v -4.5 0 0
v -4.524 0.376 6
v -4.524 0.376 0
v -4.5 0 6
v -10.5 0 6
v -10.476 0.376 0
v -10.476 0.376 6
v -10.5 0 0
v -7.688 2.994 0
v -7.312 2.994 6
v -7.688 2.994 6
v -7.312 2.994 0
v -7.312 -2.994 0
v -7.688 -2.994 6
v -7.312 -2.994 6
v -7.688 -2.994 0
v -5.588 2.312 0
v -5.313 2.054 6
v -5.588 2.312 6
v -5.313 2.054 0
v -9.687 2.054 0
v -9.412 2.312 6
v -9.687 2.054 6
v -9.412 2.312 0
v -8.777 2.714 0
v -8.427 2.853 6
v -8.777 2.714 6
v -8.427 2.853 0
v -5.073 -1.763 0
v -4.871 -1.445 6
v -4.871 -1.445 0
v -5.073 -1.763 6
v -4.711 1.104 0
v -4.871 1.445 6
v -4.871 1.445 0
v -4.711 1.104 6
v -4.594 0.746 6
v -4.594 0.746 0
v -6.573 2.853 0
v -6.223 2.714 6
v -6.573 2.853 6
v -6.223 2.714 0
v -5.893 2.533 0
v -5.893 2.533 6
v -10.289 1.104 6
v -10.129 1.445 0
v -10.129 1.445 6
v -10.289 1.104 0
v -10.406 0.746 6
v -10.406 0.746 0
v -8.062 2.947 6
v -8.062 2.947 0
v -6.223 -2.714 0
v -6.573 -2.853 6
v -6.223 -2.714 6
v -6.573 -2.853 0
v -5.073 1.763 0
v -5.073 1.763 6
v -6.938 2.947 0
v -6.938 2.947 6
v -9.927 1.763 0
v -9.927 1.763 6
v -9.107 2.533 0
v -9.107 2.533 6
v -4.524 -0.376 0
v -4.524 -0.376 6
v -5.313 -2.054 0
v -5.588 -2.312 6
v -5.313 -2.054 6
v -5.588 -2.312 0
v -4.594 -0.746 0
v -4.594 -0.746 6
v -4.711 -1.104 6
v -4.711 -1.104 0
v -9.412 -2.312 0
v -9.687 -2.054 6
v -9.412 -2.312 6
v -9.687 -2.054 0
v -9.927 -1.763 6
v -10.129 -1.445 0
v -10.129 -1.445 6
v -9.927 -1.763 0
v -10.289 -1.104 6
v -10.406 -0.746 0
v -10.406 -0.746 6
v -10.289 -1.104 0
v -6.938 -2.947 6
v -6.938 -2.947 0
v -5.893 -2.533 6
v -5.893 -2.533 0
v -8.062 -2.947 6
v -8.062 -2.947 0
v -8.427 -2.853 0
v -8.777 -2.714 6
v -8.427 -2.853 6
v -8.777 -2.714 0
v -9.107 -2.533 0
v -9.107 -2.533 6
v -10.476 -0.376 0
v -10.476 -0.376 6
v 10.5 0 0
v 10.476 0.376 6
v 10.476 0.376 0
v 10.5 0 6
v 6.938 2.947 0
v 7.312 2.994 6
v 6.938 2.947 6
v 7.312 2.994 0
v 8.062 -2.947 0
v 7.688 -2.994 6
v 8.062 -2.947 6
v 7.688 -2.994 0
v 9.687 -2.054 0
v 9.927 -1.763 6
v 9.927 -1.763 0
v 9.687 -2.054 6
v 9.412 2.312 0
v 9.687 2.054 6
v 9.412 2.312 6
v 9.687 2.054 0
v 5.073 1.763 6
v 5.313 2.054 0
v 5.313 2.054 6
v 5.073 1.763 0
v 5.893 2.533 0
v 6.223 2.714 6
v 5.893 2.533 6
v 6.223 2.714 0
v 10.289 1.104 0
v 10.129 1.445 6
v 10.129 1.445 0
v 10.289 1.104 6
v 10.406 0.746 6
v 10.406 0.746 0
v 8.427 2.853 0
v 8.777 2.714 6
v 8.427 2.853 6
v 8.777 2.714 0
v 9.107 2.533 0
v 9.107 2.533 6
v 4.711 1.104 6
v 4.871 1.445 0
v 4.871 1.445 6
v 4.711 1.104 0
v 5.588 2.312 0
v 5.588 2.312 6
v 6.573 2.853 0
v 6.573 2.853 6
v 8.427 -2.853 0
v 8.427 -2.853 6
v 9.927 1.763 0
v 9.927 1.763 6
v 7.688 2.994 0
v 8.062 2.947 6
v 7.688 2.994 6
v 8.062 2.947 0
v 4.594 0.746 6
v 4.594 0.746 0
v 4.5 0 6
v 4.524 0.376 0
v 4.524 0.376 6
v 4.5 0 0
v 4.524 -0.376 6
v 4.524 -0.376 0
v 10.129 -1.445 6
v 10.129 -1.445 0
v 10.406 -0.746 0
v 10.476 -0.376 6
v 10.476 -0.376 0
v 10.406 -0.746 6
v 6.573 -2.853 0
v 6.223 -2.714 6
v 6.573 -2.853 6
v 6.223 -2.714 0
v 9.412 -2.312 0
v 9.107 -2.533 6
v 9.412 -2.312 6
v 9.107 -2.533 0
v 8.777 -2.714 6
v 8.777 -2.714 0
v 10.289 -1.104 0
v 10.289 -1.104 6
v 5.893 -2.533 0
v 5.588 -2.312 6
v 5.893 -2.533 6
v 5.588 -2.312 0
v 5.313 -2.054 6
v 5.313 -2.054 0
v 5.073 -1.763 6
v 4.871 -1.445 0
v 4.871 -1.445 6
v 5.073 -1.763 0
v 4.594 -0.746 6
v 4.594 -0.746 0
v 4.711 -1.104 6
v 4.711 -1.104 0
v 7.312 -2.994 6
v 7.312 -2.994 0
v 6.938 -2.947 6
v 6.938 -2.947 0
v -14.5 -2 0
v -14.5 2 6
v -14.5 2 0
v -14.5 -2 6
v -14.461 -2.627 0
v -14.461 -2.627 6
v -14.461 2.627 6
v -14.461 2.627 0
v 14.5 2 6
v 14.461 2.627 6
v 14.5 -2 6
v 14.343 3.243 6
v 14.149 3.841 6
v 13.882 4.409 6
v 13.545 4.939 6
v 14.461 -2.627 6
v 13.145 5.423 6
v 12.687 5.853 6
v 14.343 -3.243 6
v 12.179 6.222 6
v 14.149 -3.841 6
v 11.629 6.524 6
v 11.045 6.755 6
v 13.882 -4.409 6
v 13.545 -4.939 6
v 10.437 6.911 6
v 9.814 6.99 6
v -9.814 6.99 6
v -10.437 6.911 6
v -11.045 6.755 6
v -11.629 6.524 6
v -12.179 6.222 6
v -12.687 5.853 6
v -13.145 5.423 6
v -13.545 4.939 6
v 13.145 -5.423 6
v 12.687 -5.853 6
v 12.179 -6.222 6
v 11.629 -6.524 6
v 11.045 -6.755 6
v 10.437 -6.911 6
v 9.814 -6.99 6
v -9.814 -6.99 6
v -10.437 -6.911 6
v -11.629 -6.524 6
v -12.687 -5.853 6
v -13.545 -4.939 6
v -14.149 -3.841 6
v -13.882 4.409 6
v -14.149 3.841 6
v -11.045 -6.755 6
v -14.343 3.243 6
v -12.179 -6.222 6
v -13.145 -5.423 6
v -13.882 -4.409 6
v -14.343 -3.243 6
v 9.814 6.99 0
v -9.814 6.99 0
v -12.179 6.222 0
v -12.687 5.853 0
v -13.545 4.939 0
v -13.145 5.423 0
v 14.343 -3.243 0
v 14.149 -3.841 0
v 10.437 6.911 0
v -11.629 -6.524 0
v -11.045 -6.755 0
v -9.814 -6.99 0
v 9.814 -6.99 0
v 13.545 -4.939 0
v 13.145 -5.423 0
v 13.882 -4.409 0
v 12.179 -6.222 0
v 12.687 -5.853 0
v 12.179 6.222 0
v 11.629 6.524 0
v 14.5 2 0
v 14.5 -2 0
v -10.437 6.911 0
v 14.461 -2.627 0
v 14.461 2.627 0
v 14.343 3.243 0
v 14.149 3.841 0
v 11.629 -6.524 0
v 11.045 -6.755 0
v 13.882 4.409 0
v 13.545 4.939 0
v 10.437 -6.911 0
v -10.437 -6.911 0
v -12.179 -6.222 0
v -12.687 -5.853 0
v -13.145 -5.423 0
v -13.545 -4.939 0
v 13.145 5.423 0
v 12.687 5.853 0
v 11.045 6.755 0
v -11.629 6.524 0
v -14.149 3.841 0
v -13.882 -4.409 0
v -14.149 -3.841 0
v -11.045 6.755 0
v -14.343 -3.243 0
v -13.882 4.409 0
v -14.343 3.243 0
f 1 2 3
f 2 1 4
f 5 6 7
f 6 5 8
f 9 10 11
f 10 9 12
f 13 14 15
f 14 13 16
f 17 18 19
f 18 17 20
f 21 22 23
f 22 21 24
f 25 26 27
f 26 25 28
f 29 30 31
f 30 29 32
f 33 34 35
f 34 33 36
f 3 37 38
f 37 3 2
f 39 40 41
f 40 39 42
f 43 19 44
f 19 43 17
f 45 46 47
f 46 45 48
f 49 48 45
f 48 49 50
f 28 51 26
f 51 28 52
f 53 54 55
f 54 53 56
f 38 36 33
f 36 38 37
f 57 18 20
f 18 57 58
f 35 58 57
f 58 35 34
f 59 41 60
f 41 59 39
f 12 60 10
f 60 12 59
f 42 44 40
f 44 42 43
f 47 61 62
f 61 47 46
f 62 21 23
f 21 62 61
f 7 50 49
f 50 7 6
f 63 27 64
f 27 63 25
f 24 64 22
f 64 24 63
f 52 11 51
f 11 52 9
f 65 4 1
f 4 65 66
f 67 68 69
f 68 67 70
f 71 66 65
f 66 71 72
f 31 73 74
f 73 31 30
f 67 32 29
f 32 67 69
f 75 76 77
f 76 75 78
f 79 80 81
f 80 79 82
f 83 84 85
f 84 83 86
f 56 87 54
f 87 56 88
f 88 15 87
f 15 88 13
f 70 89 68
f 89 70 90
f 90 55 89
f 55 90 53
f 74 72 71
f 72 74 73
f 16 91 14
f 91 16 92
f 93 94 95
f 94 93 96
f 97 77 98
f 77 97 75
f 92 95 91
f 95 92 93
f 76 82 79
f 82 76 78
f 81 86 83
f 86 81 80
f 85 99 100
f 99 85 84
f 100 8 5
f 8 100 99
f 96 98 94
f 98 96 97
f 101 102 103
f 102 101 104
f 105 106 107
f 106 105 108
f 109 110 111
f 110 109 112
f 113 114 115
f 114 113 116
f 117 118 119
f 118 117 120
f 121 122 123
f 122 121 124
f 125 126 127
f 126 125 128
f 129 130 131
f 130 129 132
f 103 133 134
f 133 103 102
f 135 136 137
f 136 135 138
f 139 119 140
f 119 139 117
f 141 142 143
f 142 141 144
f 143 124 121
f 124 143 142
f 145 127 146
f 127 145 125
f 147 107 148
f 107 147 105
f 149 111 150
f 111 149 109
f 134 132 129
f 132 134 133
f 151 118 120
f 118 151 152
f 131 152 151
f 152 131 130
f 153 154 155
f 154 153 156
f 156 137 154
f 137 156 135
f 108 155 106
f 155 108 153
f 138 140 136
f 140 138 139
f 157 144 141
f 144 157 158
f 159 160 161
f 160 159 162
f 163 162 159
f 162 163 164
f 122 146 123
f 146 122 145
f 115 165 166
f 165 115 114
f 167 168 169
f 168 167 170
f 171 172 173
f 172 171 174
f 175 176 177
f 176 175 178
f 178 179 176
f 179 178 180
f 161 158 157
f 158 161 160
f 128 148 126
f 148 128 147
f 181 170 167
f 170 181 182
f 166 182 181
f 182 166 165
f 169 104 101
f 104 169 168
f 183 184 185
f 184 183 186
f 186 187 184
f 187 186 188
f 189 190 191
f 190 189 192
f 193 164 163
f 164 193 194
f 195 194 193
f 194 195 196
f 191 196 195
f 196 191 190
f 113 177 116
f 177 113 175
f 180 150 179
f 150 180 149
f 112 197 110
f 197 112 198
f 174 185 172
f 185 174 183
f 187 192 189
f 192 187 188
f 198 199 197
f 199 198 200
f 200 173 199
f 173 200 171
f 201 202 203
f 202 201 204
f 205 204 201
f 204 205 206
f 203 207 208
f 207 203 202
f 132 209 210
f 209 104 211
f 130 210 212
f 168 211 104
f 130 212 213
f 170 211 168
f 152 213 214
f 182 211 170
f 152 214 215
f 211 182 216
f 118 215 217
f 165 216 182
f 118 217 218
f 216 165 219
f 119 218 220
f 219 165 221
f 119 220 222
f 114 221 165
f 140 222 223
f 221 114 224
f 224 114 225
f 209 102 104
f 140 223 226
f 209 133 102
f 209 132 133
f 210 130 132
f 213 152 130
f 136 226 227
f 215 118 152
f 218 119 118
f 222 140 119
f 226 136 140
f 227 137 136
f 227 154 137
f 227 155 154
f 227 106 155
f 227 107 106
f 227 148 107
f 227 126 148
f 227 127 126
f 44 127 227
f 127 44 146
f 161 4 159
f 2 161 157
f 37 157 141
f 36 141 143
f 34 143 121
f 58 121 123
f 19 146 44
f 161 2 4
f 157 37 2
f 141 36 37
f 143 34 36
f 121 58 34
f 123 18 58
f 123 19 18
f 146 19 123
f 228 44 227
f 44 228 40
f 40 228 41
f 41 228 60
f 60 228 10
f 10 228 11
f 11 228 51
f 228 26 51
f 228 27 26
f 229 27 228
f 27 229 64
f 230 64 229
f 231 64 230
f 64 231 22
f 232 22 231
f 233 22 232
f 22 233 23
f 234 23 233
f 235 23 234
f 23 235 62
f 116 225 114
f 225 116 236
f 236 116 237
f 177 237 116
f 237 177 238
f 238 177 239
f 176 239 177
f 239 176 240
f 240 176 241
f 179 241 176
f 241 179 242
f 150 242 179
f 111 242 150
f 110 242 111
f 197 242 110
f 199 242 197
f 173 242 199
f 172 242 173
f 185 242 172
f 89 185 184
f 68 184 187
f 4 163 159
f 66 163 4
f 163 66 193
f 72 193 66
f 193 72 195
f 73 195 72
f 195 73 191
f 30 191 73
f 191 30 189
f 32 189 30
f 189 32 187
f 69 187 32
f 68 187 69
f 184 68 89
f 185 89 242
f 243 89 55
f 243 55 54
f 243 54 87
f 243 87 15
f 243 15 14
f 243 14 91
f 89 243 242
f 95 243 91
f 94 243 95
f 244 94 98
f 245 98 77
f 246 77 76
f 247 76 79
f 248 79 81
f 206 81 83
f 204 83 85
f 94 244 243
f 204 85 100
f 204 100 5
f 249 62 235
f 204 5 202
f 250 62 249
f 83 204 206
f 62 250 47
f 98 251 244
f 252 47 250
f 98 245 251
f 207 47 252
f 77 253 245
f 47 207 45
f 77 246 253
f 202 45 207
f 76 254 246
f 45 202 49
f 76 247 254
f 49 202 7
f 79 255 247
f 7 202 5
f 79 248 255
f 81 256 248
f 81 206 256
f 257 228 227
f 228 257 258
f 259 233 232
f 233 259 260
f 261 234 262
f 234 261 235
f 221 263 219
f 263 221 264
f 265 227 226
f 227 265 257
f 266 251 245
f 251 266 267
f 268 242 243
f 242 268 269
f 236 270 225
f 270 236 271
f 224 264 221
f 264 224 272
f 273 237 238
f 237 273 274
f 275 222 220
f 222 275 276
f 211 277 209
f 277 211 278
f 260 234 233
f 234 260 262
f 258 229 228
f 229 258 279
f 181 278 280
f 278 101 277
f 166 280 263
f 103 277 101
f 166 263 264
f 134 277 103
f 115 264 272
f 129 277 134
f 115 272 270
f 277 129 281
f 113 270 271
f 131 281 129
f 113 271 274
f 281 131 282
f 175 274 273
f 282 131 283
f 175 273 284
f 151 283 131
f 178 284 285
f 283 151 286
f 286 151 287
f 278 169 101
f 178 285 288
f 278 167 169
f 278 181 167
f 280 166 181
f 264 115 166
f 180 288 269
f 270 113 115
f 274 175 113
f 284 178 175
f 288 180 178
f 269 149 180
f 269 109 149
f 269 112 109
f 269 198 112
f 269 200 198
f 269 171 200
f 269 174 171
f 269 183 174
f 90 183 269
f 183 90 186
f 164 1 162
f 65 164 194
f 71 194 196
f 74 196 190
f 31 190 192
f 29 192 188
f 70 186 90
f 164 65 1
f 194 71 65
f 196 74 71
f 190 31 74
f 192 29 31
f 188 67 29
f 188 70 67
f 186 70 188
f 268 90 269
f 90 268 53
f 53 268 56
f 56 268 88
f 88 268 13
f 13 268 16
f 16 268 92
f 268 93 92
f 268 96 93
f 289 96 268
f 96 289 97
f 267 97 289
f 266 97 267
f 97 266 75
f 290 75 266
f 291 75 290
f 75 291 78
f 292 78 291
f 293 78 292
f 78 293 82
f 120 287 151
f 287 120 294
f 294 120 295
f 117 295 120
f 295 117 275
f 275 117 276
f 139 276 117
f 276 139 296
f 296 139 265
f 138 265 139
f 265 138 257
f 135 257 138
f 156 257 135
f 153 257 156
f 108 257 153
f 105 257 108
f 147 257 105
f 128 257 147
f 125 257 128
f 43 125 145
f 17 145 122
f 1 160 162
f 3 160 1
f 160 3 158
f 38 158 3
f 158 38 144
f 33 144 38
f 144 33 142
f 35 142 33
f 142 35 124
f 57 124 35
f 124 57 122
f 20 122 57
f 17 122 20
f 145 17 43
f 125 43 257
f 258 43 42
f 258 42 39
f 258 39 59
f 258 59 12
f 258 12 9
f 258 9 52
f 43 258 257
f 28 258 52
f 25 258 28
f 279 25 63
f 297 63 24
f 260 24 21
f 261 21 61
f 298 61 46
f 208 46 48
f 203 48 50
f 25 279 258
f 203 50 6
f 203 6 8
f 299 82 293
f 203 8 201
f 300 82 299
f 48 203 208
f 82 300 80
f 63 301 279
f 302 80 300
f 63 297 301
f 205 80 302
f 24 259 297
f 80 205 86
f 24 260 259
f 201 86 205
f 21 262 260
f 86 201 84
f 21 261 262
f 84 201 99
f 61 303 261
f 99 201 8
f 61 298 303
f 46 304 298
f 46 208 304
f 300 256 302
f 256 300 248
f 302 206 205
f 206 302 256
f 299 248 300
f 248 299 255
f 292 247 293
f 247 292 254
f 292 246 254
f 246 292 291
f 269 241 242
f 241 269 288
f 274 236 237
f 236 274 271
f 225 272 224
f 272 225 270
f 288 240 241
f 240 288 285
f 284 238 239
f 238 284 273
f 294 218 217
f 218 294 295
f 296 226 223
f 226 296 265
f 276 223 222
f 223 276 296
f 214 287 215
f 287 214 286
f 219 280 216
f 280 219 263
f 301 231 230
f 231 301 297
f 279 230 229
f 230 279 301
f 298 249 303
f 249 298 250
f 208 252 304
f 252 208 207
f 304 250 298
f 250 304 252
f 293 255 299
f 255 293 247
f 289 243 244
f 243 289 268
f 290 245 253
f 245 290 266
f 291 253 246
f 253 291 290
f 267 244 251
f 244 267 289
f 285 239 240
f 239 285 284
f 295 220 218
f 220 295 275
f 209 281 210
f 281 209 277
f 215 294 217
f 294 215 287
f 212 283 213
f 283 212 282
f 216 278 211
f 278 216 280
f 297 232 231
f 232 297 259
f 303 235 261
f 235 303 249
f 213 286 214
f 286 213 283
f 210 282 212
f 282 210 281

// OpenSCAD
$fn = 50;


difference() {
	union() {
		hull() {
			translate(v = [-9.5000000000, 2.0000000000, 0]) {
				cylinder(h = 6, r = 5);
			}
			translate(v = [9.5000000000, 2.0000000000, 0]) {
				cylinder(h = 6, r = 5);
			}
			translate(v = [-9.5000000000, -2.0000000000, 0]) {
				cylinder(h = 6, r = 5);
			}
			translate(v = [9.5000000000, -2.0000000000, 0]) {
				cylinder(h = 6, r = 5);
			}
		}
	}
	union() {
		translate(v = [-7.5000000000, 0.0000000000, 0]) {
			cylinder(h = 6, r = 3.0000000000);
		}
		translate(v = [7.5000000000, 0.0000000000, 0]) {
			cylinder(h = 6, r = 3.0000000000);
		}
		translate(v = [-7.5000000000, 0.0000000000, 0]) {
			cylinder(h = 6, r = 1.5000000000);
		}
		translate(v = [7.5000000000, 0.0000000000, 0]) {
			cylinder(h = 6, r = 1.5000000000);
		}
		translate(v = [-7.5000000000, 0.0000000000, 0]) {
			cylinder(h = 6, r = 1.5000000000);
		}
		translate(v = [7.5000000000, 0.0000000000, 0]) {
			cylinder(h = 6, r = 1.5000000000);
		}
		translate(v = [-7.5000000000, 0.0000000000, 0]) {
			cylinder(h = 6, r = 1.5000000000);
		}
		translate(v = [7.5000000000, 0.0000000000, 0]) {
			cylinder(h = 6, r = 1.5000000000);
		}
	}
}
